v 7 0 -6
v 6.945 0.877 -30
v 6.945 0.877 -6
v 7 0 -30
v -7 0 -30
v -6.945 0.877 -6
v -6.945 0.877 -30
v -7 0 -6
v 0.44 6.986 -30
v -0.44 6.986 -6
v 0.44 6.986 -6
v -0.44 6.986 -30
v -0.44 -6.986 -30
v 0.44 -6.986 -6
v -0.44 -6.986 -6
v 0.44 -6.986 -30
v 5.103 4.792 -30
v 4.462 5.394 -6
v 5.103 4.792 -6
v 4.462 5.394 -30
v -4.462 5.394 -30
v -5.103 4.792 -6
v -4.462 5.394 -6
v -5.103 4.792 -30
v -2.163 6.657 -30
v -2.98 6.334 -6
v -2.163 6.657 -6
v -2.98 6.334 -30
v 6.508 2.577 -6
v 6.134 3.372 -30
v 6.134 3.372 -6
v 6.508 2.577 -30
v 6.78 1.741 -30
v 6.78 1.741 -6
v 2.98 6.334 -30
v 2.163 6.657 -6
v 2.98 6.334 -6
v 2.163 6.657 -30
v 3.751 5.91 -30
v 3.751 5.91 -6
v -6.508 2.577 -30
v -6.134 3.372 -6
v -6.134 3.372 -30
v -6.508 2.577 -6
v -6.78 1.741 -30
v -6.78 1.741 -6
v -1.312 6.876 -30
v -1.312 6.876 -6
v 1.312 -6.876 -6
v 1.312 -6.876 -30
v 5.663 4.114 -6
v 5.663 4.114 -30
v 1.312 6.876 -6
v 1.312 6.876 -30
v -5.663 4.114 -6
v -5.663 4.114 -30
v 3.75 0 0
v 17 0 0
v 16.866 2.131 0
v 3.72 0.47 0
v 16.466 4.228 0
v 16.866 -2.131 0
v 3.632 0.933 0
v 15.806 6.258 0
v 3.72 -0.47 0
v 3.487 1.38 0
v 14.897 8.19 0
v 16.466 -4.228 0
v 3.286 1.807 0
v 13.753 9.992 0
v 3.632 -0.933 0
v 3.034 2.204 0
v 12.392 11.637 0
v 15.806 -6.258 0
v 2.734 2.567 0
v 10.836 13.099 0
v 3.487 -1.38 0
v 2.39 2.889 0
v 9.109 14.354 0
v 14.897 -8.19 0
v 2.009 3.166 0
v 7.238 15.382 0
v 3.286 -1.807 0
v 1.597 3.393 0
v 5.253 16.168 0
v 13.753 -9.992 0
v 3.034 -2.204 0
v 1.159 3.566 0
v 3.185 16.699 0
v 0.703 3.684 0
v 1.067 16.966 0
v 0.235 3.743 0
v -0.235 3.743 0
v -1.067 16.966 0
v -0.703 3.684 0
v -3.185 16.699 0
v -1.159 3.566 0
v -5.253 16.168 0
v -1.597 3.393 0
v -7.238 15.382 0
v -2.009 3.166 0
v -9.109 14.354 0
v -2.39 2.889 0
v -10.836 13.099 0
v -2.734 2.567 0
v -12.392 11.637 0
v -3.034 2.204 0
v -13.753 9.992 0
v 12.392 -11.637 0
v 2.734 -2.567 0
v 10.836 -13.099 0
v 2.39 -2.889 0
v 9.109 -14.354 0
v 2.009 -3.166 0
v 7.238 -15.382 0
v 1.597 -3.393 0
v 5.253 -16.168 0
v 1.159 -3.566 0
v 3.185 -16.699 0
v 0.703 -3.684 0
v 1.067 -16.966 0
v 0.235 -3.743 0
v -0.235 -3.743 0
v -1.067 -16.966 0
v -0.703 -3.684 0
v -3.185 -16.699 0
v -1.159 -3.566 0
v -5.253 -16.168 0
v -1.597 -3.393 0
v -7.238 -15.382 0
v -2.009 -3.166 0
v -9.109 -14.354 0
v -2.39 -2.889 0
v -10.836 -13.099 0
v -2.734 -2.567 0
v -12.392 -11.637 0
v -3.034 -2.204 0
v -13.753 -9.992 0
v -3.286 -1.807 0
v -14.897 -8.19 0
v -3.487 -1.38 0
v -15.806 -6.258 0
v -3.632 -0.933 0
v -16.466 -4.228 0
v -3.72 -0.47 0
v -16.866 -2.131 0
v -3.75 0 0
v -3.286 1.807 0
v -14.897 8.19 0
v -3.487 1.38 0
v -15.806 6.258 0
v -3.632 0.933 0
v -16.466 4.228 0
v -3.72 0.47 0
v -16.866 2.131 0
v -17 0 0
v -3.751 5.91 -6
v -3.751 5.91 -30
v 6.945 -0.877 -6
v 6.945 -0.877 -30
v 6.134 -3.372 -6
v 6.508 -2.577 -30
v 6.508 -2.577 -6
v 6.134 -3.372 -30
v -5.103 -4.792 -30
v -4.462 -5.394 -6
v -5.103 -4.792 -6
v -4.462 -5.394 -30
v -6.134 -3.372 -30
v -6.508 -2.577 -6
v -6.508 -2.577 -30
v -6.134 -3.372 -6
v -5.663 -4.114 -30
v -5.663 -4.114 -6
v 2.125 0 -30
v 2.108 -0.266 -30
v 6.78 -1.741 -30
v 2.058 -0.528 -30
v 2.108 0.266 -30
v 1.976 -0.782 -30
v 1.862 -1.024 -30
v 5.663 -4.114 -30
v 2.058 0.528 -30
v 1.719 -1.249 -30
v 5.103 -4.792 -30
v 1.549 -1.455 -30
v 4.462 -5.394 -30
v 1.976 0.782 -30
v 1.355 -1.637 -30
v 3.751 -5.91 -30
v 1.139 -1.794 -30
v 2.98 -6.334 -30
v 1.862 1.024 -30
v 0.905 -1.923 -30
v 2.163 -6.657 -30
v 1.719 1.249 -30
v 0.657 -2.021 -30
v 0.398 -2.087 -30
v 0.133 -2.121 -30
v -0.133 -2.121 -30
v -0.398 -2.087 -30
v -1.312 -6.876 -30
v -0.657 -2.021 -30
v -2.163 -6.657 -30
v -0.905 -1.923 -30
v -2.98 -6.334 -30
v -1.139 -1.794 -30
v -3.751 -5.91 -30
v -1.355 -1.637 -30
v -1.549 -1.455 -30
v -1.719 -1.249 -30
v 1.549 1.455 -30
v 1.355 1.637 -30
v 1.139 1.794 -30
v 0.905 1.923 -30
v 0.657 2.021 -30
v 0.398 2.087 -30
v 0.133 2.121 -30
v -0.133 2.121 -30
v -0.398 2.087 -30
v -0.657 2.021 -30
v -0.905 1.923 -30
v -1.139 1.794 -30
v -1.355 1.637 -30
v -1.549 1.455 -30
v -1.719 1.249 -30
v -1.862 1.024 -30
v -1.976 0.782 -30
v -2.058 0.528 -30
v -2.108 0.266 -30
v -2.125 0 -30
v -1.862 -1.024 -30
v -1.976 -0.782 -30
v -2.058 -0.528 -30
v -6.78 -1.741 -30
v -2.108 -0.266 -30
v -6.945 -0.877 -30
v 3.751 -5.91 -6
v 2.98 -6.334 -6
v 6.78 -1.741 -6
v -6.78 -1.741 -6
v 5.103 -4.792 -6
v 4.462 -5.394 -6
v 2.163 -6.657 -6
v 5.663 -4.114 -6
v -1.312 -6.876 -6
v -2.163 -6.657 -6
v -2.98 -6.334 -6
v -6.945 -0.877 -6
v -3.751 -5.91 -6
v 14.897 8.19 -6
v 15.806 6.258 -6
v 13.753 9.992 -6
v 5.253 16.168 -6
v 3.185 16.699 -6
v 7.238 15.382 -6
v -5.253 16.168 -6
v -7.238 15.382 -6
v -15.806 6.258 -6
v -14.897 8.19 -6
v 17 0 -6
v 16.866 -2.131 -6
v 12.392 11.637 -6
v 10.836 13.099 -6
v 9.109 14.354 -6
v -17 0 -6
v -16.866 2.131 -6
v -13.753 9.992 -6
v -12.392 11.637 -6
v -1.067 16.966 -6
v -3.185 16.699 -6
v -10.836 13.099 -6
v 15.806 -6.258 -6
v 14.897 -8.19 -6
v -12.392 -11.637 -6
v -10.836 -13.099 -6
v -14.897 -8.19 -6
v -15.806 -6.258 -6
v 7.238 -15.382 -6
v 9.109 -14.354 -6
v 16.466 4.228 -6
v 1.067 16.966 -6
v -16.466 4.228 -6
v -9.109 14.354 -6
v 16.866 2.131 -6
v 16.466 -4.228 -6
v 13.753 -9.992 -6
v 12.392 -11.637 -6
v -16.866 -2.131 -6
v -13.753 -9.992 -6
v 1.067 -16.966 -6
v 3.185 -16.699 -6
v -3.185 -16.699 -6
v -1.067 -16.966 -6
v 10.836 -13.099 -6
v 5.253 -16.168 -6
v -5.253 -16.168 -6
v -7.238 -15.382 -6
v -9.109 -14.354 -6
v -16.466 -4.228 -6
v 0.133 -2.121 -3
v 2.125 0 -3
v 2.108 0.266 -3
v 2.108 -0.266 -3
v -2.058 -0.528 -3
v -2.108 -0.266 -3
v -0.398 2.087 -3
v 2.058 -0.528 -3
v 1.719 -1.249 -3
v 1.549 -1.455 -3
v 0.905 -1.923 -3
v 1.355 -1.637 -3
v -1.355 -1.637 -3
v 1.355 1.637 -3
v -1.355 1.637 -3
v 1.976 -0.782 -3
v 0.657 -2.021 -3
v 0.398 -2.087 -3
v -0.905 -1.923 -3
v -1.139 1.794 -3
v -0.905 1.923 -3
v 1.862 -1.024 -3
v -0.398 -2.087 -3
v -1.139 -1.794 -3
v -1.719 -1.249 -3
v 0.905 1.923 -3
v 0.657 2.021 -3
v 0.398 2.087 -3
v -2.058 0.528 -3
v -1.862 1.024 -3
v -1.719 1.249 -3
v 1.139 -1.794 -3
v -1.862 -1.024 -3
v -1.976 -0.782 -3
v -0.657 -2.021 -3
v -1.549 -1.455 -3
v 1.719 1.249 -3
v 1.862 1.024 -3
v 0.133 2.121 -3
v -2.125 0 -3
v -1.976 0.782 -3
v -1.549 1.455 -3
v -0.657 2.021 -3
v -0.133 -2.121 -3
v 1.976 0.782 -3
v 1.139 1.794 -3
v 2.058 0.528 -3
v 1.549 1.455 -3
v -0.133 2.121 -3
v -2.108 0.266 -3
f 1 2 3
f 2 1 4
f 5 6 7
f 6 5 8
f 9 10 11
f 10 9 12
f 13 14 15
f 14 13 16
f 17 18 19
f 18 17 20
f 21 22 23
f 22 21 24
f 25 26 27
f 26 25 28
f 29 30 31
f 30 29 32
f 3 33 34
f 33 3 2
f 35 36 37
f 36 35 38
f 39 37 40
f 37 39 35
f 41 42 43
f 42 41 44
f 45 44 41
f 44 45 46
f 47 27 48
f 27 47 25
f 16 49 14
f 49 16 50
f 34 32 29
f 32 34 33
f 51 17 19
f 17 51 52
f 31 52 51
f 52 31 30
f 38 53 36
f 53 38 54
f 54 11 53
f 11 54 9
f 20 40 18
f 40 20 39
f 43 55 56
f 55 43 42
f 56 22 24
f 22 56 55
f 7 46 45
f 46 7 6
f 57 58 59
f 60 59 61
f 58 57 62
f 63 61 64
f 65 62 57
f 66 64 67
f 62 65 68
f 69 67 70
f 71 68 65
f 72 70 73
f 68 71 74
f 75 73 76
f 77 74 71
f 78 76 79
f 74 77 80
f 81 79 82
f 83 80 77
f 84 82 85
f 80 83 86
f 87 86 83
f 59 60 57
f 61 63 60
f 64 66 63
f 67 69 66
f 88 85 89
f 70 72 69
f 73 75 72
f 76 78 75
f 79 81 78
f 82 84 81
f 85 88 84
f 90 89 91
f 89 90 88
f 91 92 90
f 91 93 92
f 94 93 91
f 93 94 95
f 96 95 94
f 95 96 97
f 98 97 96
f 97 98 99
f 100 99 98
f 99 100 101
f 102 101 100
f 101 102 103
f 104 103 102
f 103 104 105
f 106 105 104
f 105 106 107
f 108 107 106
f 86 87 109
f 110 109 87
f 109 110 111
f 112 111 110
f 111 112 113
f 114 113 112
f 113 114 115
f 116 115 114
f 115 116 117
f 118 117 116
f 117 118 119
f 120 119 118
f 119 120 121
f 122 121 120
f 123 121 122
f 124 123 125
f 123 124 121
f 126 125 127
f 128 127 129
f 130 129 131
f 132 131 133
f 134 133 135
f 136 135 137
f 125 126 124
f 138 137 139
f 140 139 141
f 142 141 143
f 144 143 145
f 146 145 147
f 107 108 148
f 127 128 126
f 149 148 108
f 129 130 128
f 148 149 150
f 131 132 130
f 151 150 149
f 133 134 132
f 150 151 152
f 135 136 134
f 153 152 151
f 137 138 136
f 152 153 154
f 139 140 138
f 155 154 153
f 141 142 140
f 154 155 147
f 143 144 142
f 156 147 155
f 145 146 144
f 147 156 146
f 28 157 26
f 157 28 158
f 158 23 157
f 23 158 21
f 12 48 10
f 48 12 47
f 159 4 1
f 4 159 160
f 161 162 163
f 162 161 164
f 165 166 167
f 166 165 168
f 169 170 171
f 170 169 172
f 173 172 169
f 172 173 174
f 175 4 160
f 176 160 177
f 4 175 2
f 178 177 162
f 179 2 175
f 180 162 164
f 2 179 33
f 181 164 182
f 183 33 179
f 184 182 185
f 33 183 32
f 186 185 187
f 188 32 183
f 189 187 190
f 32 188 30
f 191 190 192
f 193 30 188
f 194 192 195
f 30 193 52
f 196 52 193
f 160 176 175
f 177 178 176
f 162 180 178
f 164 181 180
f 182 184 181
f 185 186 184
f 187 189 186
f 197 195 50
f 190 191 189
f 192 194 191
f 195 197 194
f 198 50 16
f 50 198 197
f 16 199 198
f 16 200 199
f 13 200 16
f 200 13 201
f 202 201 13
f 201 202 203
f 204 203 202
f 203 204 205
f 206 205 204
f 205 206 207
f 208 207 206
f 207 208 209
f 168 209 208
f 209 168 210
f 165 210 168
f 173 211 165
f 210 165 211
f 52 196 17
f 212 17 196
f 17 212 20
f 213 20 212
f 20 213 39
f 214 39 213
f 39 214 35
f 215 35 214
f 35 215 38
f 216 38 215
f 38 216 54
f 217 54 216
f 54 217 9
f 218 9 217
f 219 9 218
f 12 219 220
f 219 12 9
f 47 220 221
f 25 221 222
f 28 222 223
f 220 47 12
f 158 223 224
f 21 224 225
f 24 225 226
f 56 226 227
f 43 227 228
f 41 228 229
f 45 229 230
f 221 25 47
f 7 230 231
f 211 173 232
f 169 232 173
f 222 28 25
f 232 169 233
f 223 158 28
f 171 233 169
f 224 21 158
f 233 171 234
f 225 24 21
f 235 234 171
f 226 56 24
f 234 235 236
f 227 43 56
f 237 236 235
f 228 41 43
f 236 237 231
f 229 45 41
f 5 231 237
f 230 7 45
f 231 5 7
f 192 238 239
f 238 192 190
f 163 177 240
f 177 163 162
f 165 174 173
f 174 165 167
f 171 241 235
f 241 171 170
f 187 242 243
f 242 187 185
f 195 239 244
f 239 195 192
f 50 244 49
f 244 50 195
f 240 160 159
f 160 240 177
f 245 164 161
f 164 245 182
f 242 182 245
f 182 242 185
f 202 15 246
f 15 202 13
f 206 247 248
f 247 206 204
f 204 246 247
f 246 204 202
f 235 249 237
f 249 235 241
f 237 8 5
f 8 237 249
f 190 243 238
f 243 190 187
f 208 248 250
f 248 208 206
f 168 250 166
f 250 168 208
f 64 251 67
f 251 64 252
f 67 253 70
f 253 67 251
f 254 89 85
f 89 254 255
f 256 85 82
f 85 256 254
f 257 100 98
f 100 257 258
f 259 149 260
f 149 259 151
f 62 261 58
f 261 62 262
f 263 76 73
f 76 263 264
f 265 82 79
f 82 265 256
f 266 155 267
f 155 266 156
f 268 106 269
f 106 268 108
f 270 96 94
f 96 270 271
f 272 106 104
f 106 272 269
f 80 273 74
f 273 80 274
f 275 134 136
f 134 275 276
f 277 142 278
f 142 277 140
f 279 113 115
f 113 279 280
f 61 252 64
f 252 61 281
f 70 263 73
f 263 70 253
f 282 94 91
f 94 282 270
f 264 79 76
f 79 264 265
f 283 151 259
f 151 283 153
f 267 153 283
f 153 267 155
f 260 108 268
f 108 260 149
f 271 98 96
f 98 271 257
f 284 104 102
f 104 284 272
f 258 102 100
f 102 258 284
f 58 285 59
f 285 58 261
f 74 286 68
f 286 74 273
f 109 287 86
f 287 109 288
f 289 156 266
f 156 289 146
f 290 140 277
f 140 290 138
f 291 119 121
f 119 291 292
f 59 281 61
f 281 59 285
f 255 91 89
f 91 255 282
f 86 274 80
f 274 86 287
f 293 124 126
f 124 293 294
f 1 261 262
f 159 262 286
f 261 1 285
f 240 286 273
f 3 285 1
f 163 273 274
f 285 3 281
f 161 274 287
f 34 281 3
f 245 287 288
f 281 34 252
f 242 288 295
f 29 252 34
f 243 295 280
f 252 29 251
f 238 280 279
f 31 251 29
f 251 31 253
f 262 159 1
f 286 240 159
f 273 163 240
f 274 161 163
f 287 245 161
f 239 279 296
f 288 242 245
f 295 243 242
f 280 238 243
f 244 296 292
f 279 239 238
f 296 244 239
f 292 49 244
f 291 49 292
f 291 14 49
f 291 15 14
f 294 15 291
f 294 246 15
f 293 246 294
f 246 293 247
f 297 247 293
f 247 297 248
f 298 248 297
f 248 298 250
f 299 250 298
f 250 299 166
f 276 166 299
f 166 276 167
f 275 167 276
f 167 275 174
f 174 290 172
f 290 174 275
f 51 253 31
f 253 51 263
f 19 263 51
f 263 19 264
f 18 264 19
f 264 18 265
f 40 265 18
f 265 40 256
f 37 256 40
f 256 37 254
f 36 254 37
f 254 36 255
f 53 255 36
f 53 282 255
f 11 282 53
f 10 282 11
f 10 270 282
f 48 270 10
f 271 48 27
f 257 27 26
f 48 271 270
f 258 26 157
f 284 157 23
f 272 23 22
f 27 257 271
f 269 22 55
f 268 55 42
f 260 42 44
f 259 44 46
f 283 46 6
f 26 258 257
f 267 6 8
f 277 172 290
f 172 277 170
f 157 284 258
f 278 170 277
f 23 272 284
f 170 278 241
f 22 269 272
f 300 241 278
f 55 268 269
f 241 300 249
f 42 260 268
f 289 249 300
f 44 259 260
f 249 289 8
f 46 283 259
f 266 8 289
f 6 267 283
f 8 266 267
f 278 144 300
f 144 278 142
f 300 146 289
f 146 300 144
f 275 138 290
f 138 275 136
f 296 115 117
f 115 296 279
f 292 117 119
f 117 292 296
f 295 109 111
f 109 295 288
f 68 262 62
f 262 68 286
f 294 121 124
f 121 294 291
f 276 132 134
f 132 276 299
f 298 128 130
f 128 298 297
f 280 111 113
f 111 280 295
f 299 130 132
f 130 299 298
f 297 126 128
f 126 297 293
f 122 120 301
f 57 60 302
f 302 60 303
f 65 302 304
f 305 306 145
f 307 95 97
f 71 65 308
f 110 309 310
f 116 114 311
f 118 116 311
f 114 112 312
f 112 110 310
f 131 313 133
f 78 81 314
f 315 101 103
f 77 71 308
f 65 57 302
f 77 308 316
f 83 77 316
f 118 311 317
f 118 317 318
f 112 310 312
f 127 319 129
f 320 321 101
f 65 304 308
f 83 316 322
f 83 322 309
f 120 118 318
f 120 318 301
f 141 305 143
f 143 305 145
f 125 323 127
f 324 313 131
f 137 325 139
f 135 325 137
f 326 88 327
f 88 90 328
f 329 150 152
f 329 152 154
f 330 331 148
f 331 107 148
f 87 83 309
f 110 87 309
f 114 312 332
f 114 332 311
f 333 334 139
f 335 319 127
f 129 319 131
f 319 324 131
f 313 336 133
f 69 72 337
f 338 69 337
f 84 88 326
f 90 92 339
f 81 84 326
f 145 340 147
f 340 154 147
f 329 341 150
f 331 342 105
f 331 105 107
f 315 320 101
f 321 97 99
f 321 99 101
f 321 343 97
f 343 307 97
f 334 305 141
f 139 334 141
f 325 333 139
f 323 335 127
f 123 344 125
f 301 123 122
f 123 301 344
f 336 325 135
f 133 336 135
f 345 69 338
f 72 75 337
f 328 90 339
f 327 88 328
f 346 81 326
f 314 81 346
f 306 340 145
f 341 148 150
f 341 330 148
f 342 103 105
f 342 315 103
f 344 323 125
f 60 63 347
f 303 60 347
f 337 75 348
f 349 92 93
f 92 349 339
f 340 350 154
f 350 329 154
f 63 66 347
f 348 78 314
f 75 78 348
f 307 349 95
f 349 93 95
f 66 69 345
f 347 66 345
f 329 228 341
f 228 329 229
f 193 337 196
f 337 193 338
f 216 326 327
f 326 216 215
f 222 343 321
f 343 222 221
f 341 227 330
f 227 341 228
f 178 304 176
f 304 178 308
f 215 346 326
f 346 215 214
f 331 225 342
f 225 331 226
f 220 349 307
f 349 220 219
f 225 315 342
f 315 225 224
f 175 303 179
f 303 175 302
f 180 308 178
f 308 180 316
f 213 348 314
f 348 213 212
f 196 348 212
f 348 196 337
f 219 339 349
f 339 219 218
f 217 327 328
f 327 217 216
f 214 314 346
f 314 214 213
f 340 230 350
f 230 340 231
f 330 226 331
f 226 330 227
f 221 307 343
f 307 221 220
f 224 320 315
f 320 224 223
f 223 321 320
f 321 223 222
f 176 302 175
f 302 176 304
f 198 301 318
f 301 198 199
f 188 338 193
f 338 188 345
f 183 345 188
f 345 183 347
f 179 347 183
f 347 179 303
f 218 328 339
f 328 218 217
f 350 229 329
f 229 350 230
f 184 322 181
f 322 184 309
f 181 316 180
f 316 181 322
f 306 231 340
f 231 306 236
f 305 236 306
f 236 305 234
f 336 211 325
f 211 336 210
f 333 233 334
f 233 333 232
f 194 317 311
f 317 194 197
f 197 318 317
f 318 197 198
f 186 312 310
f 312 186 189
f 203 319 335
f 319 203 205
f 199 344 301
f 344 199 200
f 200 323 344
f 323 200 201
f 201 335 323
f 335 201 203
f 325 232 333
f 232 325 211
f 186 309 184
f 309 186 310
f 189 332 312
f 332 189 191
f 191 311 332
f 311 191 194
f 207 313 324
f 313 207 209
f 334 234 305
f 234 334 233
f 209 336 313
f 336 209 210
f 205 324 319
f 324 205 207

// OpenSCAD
$fn = 50;


difference() {
	union() {
		translate(v = [0, 0, -30.0000000000]) {
			cylinder(h = 30, r = 7.0000000000);
		}
		translate(v = [0, 0, -6.0000000000]) {
			cylinder(h = 6, r = 17.0000000000);
		}
	}
	union() {
		translate(v = [0, 0, 0]) {
			rotate(a = [0, 0, 0]) {
				difference() {
					union() {
						#translate(v = [0, 0, -30.0000000000]) {
							cylinder(h = 30, r = 2.0000000000);
						}
						#translate(v = [0, 0, -3]) {
							cylinder(h = 3, r1 = 2.1250000000, r2 = 3.7500000000);
						}
						#translate(v = [0, 0, -30.0000000000]) {
							cylinder(h = 30, r = 2.1250000000);
						}
						#translate(v = [0, 0, -30.0000000000]) {
							cylinder(h = 30, r = 2.0000000000);
						}
					}
					union();
				}
			}
		}
	}
}
